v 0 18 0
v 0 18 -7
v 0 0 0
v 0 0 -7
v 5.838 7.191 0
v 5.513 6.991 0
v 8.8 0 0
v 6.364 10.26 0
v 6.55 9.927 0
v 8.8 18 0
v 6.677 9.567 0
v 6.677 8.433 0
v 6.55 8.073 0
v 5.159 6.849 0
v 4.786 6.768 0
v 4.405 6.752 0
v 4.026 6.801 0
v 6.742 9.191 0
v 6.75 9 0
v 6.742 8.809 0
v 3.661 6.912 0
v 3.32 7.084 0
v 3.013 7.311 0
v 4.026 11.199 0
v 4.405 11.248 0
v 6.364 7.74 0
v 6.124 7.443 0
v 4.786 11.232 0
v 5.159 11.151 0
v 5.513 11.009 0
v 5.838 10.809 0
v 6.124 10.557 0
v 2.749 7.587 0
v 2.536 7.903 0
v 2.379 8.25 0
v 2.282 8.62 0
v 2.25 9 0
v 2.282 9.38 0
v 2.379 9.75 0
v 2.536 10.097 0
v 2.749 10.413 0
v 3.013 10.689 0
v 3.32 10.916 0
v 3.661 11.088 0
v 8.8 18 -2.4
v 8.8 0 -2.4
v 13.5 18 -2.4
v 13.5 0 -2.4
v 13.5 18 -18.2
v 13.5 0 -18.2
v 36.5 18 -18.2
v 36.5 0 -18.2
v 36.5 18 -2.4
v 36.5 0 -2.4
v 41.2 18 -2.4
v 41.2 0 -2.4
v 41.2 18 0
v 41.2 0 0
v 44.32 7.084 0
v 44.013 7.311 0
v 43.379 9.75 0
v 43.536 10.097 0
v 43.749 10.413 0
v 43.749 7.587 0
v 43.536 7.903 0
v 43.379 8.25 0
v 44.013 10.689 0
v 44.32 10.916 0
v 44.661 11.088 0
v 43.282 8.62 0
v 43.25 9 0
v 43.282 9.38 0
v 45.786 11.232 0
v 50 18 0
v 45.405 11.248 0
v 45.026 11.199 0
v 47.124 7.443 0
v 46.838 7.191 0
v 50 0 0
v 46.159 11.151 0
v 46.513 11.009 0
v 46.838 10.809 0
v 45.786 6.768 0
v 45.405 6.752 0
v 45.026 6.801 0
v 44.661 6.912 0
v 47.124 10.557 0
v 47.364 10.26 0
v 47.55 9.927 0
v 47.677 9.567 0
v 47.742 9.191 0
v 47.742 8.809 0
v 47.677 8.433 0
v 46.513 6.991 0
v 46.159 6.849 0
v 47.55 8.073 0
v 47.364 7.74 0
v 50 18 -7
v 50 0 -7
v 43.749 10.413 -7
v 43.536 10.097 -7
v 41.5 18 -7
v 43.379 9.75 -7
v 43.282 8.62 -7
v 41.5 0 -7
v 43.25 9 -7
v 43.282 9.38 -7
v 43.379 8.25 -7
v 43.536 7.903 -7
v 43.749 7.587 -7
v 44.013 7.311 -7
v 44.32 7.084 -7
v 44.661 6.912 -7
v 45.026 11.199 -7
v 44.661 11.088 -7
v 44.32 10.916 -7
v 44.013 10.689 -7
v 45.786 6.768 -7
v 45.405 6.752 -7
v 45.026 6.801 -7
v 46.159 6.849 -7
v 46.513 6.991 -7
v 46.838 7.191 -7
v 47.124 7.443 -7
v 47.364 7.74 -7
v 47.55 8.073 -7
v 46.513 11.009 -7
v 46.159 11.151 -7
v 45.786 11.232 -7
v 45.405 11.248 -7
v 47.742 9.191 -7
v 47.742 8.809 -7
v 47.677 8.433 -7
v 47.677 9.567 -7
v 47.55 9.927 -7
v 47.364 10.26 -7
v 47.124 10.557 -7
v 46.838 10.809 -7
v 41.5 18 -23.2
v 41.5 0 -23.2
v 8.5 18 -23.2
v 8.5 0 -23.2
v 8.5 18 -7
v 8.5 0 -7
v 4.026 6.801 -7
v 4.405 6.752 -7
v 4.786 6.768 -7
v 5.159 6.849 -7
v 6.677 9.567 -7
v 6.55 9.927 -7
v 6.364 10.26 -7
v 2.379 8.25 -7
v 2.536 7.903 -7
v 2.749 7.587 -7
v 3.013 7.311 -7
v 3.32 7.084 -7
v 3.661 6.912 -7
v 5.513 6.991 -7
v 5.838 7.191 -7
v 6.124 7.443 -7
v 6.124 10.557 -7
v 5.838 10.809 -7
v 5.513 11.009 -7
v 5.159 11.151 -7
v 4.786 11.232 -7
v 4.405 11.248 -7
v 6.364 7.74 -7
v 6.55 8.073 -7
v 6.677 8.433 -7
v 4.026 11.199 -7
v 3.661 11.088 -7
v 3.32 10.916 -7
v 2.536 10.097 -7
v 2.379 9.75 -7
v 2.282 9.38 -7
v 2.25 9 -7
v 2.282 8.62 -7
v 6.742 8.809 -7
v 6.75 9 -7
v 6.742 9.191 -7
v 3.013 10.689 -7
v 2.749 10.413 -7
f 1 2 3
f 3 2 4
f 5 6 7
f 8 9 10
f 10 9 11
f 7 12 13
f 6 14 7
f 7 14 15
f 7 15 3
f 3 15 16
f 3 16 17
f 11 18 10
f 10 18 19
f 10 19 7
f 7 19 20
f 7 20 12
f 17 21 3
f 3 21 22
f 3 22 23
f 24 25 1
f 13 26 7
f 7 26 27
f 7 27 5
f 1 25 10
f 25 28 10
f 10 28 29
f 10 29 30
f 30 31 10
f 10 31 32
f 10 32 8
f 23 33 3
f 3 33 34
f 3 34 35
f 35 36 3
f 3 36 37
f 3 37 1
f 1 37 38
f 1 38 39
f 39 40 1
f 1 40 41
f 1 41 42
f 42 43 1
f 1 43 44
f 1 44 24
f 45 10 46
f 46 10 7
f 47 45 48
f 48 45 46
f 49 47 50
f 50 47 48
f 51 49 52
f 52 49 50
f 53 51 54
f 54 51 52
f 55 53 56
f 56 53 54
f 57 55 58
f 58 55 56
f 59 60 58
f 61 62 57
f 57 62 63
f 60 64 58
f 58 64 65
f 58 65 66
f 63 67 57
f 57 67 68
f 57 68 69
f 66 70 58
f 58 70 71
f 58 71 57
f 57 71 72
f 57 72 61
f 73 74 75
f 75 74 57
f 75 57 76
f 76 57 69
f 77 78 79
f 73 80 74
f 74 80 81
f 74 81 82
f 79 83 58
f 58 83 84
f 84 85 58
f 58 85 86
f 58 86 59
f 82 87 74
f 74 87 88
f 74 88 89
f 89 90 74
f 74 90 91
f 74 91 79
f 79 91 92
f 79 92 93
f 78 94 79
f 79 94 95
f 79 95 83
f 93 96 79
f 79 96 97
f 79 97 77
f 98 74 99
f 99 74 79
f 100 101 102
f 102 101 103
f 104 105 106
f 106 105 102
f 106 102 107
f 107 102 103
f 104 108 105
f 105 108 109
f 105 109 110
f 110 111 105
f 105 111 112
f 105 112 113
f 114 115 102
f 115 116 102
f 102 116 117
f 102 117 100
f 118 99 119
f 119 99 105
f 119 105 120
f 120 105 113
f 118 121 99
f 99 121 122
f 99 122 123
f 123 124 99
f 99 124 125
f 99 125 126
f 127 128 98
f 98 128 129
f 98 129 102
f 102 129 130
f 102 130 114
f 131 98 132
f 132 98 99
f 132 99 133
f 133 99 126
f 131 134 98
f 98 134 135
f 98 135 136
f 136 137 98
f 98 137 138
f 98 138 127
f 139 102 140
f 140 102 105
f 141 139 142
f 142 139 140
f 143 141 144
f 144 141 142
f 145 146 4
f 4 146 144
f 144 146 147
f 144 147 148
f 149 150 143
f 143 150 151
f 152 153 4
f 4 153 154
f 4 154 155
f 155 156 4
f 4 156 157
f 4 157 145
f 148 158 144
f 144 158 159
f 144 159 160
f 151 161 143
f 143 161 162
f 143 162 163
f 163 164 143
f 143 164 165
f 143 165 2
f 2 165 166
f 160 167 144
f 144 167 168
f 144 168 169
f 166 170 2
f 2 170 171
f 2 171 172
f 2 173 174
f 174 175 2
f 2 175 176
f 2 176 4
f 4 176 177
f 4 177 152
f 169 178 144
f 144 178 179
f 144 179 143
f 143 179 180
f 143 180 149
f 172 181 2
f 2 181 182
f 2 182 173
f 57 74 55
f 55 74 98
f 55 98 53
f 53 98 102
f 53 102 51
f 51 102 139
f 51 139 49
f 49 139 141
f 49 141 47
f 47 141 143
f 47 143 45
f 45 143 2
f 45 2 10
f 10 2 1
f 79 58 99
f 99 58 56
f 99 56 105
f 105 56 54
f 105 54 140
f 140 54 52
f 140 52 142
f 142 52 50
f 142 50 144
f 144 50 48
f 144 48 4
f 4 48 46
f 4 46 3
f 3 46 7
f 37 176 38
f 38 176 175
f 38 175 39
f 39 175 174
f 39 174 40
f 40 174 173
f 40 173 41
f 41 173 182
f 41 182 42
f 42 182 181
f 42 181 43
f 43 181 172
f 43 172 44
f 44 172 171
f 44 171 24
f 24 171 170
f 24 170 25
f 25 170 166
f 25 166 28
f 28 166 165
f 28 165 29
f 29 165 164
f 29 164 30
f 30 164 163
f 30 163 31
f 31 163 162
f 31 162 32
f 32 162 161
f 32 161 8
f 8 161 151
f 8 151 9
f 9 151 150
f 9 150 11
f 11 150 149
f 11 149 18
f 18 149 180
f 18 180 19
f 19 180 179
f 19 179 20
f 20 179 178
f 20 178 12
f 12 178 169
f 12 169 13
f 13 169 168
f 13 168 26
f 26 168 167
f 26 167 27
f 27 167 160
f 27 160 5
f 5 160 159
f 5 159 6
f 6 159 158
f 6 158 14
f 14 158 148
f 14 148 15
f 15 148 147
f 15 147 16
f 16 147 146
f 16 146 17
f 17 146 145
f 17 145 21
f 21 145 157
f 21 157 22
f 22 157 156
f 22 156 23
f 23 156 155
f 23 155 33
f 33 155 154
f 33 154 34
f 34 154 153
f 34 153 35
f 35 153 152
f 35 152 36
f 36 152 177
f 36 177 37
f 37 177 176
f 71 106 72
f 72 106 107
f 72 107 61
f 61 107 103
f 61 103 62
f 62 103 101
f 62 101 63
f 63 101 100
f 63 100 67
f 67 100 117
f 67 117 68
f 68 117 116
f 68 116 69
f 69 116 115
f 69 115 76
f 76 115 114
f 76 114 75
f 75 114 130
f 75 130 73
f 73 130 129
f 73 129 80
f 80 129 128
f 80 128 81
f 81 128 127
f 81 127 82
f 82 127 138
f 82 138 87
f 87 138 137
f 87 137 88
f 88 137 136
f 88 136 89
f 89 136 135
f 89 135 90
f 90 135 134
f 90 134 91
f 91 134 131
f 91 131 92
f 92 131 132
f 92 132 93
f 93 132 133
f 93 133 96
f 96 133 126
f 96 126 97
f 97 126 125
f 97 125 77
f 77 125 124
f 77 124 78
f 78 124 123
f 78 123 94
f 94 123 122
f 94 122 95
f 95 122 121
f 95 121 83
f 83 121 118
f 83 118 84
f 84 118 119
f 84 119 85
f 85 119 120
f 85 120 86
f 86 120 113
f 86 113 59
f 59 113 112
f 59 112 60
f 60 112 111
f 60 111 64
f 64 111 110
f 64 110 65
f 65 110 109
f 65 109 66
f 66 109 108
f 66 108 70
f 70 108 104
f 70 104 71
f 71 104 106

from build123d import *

# Parameters (mm, degrees)
BOSS_EXTRUDE1_DEPTH = 18
SKETCH2_R           = 2.25
CUT_EXTRUDE1_DEPTH  = 56.555737777


with BuildPart() as part:
    # Sketch1 → Boss-Extrude1 (new body)
    with BuildSketch(Plane(origin=(0, 0, 0), x_dir=(1, 0, 0), z_dir=(0, 1, 0))):
        Polygon((0, 0), (8.8, 0), (8.8, 2.4), (13.5, 2.4), (13.5, 18.2), (36.5, 18.2), (36.5, 2.4), (41.2, 2.4), (41.2, 0), (50, 0), (50, 7), (41.5, 7), (41.5, 23.2), (8.5, 23.2), (8.5, 7), (0, 7), align=None)
    extrude(amount=BOSS_EXTRUDE1_DEPTH)

    # Sketch2 → Cut-Extrude1 (cut, through all)
    with BuildSketch(Plane(origin=(0, 0, -7), x_dir=(-1, 0, 0), z_dir=(0, 0, -1))):
        with Locations((-45.5, 9)):
            Circle(SKETCH2_R)
        with Locations(Location((-4.5, 9, 0), (0, 0, 180))):
            Circle(SKETCH2_R)
    extrude(amount=-CUT_EXTRUDE1_DEPTH, mode=Mode.SUBTRACT)


solid = part.part
